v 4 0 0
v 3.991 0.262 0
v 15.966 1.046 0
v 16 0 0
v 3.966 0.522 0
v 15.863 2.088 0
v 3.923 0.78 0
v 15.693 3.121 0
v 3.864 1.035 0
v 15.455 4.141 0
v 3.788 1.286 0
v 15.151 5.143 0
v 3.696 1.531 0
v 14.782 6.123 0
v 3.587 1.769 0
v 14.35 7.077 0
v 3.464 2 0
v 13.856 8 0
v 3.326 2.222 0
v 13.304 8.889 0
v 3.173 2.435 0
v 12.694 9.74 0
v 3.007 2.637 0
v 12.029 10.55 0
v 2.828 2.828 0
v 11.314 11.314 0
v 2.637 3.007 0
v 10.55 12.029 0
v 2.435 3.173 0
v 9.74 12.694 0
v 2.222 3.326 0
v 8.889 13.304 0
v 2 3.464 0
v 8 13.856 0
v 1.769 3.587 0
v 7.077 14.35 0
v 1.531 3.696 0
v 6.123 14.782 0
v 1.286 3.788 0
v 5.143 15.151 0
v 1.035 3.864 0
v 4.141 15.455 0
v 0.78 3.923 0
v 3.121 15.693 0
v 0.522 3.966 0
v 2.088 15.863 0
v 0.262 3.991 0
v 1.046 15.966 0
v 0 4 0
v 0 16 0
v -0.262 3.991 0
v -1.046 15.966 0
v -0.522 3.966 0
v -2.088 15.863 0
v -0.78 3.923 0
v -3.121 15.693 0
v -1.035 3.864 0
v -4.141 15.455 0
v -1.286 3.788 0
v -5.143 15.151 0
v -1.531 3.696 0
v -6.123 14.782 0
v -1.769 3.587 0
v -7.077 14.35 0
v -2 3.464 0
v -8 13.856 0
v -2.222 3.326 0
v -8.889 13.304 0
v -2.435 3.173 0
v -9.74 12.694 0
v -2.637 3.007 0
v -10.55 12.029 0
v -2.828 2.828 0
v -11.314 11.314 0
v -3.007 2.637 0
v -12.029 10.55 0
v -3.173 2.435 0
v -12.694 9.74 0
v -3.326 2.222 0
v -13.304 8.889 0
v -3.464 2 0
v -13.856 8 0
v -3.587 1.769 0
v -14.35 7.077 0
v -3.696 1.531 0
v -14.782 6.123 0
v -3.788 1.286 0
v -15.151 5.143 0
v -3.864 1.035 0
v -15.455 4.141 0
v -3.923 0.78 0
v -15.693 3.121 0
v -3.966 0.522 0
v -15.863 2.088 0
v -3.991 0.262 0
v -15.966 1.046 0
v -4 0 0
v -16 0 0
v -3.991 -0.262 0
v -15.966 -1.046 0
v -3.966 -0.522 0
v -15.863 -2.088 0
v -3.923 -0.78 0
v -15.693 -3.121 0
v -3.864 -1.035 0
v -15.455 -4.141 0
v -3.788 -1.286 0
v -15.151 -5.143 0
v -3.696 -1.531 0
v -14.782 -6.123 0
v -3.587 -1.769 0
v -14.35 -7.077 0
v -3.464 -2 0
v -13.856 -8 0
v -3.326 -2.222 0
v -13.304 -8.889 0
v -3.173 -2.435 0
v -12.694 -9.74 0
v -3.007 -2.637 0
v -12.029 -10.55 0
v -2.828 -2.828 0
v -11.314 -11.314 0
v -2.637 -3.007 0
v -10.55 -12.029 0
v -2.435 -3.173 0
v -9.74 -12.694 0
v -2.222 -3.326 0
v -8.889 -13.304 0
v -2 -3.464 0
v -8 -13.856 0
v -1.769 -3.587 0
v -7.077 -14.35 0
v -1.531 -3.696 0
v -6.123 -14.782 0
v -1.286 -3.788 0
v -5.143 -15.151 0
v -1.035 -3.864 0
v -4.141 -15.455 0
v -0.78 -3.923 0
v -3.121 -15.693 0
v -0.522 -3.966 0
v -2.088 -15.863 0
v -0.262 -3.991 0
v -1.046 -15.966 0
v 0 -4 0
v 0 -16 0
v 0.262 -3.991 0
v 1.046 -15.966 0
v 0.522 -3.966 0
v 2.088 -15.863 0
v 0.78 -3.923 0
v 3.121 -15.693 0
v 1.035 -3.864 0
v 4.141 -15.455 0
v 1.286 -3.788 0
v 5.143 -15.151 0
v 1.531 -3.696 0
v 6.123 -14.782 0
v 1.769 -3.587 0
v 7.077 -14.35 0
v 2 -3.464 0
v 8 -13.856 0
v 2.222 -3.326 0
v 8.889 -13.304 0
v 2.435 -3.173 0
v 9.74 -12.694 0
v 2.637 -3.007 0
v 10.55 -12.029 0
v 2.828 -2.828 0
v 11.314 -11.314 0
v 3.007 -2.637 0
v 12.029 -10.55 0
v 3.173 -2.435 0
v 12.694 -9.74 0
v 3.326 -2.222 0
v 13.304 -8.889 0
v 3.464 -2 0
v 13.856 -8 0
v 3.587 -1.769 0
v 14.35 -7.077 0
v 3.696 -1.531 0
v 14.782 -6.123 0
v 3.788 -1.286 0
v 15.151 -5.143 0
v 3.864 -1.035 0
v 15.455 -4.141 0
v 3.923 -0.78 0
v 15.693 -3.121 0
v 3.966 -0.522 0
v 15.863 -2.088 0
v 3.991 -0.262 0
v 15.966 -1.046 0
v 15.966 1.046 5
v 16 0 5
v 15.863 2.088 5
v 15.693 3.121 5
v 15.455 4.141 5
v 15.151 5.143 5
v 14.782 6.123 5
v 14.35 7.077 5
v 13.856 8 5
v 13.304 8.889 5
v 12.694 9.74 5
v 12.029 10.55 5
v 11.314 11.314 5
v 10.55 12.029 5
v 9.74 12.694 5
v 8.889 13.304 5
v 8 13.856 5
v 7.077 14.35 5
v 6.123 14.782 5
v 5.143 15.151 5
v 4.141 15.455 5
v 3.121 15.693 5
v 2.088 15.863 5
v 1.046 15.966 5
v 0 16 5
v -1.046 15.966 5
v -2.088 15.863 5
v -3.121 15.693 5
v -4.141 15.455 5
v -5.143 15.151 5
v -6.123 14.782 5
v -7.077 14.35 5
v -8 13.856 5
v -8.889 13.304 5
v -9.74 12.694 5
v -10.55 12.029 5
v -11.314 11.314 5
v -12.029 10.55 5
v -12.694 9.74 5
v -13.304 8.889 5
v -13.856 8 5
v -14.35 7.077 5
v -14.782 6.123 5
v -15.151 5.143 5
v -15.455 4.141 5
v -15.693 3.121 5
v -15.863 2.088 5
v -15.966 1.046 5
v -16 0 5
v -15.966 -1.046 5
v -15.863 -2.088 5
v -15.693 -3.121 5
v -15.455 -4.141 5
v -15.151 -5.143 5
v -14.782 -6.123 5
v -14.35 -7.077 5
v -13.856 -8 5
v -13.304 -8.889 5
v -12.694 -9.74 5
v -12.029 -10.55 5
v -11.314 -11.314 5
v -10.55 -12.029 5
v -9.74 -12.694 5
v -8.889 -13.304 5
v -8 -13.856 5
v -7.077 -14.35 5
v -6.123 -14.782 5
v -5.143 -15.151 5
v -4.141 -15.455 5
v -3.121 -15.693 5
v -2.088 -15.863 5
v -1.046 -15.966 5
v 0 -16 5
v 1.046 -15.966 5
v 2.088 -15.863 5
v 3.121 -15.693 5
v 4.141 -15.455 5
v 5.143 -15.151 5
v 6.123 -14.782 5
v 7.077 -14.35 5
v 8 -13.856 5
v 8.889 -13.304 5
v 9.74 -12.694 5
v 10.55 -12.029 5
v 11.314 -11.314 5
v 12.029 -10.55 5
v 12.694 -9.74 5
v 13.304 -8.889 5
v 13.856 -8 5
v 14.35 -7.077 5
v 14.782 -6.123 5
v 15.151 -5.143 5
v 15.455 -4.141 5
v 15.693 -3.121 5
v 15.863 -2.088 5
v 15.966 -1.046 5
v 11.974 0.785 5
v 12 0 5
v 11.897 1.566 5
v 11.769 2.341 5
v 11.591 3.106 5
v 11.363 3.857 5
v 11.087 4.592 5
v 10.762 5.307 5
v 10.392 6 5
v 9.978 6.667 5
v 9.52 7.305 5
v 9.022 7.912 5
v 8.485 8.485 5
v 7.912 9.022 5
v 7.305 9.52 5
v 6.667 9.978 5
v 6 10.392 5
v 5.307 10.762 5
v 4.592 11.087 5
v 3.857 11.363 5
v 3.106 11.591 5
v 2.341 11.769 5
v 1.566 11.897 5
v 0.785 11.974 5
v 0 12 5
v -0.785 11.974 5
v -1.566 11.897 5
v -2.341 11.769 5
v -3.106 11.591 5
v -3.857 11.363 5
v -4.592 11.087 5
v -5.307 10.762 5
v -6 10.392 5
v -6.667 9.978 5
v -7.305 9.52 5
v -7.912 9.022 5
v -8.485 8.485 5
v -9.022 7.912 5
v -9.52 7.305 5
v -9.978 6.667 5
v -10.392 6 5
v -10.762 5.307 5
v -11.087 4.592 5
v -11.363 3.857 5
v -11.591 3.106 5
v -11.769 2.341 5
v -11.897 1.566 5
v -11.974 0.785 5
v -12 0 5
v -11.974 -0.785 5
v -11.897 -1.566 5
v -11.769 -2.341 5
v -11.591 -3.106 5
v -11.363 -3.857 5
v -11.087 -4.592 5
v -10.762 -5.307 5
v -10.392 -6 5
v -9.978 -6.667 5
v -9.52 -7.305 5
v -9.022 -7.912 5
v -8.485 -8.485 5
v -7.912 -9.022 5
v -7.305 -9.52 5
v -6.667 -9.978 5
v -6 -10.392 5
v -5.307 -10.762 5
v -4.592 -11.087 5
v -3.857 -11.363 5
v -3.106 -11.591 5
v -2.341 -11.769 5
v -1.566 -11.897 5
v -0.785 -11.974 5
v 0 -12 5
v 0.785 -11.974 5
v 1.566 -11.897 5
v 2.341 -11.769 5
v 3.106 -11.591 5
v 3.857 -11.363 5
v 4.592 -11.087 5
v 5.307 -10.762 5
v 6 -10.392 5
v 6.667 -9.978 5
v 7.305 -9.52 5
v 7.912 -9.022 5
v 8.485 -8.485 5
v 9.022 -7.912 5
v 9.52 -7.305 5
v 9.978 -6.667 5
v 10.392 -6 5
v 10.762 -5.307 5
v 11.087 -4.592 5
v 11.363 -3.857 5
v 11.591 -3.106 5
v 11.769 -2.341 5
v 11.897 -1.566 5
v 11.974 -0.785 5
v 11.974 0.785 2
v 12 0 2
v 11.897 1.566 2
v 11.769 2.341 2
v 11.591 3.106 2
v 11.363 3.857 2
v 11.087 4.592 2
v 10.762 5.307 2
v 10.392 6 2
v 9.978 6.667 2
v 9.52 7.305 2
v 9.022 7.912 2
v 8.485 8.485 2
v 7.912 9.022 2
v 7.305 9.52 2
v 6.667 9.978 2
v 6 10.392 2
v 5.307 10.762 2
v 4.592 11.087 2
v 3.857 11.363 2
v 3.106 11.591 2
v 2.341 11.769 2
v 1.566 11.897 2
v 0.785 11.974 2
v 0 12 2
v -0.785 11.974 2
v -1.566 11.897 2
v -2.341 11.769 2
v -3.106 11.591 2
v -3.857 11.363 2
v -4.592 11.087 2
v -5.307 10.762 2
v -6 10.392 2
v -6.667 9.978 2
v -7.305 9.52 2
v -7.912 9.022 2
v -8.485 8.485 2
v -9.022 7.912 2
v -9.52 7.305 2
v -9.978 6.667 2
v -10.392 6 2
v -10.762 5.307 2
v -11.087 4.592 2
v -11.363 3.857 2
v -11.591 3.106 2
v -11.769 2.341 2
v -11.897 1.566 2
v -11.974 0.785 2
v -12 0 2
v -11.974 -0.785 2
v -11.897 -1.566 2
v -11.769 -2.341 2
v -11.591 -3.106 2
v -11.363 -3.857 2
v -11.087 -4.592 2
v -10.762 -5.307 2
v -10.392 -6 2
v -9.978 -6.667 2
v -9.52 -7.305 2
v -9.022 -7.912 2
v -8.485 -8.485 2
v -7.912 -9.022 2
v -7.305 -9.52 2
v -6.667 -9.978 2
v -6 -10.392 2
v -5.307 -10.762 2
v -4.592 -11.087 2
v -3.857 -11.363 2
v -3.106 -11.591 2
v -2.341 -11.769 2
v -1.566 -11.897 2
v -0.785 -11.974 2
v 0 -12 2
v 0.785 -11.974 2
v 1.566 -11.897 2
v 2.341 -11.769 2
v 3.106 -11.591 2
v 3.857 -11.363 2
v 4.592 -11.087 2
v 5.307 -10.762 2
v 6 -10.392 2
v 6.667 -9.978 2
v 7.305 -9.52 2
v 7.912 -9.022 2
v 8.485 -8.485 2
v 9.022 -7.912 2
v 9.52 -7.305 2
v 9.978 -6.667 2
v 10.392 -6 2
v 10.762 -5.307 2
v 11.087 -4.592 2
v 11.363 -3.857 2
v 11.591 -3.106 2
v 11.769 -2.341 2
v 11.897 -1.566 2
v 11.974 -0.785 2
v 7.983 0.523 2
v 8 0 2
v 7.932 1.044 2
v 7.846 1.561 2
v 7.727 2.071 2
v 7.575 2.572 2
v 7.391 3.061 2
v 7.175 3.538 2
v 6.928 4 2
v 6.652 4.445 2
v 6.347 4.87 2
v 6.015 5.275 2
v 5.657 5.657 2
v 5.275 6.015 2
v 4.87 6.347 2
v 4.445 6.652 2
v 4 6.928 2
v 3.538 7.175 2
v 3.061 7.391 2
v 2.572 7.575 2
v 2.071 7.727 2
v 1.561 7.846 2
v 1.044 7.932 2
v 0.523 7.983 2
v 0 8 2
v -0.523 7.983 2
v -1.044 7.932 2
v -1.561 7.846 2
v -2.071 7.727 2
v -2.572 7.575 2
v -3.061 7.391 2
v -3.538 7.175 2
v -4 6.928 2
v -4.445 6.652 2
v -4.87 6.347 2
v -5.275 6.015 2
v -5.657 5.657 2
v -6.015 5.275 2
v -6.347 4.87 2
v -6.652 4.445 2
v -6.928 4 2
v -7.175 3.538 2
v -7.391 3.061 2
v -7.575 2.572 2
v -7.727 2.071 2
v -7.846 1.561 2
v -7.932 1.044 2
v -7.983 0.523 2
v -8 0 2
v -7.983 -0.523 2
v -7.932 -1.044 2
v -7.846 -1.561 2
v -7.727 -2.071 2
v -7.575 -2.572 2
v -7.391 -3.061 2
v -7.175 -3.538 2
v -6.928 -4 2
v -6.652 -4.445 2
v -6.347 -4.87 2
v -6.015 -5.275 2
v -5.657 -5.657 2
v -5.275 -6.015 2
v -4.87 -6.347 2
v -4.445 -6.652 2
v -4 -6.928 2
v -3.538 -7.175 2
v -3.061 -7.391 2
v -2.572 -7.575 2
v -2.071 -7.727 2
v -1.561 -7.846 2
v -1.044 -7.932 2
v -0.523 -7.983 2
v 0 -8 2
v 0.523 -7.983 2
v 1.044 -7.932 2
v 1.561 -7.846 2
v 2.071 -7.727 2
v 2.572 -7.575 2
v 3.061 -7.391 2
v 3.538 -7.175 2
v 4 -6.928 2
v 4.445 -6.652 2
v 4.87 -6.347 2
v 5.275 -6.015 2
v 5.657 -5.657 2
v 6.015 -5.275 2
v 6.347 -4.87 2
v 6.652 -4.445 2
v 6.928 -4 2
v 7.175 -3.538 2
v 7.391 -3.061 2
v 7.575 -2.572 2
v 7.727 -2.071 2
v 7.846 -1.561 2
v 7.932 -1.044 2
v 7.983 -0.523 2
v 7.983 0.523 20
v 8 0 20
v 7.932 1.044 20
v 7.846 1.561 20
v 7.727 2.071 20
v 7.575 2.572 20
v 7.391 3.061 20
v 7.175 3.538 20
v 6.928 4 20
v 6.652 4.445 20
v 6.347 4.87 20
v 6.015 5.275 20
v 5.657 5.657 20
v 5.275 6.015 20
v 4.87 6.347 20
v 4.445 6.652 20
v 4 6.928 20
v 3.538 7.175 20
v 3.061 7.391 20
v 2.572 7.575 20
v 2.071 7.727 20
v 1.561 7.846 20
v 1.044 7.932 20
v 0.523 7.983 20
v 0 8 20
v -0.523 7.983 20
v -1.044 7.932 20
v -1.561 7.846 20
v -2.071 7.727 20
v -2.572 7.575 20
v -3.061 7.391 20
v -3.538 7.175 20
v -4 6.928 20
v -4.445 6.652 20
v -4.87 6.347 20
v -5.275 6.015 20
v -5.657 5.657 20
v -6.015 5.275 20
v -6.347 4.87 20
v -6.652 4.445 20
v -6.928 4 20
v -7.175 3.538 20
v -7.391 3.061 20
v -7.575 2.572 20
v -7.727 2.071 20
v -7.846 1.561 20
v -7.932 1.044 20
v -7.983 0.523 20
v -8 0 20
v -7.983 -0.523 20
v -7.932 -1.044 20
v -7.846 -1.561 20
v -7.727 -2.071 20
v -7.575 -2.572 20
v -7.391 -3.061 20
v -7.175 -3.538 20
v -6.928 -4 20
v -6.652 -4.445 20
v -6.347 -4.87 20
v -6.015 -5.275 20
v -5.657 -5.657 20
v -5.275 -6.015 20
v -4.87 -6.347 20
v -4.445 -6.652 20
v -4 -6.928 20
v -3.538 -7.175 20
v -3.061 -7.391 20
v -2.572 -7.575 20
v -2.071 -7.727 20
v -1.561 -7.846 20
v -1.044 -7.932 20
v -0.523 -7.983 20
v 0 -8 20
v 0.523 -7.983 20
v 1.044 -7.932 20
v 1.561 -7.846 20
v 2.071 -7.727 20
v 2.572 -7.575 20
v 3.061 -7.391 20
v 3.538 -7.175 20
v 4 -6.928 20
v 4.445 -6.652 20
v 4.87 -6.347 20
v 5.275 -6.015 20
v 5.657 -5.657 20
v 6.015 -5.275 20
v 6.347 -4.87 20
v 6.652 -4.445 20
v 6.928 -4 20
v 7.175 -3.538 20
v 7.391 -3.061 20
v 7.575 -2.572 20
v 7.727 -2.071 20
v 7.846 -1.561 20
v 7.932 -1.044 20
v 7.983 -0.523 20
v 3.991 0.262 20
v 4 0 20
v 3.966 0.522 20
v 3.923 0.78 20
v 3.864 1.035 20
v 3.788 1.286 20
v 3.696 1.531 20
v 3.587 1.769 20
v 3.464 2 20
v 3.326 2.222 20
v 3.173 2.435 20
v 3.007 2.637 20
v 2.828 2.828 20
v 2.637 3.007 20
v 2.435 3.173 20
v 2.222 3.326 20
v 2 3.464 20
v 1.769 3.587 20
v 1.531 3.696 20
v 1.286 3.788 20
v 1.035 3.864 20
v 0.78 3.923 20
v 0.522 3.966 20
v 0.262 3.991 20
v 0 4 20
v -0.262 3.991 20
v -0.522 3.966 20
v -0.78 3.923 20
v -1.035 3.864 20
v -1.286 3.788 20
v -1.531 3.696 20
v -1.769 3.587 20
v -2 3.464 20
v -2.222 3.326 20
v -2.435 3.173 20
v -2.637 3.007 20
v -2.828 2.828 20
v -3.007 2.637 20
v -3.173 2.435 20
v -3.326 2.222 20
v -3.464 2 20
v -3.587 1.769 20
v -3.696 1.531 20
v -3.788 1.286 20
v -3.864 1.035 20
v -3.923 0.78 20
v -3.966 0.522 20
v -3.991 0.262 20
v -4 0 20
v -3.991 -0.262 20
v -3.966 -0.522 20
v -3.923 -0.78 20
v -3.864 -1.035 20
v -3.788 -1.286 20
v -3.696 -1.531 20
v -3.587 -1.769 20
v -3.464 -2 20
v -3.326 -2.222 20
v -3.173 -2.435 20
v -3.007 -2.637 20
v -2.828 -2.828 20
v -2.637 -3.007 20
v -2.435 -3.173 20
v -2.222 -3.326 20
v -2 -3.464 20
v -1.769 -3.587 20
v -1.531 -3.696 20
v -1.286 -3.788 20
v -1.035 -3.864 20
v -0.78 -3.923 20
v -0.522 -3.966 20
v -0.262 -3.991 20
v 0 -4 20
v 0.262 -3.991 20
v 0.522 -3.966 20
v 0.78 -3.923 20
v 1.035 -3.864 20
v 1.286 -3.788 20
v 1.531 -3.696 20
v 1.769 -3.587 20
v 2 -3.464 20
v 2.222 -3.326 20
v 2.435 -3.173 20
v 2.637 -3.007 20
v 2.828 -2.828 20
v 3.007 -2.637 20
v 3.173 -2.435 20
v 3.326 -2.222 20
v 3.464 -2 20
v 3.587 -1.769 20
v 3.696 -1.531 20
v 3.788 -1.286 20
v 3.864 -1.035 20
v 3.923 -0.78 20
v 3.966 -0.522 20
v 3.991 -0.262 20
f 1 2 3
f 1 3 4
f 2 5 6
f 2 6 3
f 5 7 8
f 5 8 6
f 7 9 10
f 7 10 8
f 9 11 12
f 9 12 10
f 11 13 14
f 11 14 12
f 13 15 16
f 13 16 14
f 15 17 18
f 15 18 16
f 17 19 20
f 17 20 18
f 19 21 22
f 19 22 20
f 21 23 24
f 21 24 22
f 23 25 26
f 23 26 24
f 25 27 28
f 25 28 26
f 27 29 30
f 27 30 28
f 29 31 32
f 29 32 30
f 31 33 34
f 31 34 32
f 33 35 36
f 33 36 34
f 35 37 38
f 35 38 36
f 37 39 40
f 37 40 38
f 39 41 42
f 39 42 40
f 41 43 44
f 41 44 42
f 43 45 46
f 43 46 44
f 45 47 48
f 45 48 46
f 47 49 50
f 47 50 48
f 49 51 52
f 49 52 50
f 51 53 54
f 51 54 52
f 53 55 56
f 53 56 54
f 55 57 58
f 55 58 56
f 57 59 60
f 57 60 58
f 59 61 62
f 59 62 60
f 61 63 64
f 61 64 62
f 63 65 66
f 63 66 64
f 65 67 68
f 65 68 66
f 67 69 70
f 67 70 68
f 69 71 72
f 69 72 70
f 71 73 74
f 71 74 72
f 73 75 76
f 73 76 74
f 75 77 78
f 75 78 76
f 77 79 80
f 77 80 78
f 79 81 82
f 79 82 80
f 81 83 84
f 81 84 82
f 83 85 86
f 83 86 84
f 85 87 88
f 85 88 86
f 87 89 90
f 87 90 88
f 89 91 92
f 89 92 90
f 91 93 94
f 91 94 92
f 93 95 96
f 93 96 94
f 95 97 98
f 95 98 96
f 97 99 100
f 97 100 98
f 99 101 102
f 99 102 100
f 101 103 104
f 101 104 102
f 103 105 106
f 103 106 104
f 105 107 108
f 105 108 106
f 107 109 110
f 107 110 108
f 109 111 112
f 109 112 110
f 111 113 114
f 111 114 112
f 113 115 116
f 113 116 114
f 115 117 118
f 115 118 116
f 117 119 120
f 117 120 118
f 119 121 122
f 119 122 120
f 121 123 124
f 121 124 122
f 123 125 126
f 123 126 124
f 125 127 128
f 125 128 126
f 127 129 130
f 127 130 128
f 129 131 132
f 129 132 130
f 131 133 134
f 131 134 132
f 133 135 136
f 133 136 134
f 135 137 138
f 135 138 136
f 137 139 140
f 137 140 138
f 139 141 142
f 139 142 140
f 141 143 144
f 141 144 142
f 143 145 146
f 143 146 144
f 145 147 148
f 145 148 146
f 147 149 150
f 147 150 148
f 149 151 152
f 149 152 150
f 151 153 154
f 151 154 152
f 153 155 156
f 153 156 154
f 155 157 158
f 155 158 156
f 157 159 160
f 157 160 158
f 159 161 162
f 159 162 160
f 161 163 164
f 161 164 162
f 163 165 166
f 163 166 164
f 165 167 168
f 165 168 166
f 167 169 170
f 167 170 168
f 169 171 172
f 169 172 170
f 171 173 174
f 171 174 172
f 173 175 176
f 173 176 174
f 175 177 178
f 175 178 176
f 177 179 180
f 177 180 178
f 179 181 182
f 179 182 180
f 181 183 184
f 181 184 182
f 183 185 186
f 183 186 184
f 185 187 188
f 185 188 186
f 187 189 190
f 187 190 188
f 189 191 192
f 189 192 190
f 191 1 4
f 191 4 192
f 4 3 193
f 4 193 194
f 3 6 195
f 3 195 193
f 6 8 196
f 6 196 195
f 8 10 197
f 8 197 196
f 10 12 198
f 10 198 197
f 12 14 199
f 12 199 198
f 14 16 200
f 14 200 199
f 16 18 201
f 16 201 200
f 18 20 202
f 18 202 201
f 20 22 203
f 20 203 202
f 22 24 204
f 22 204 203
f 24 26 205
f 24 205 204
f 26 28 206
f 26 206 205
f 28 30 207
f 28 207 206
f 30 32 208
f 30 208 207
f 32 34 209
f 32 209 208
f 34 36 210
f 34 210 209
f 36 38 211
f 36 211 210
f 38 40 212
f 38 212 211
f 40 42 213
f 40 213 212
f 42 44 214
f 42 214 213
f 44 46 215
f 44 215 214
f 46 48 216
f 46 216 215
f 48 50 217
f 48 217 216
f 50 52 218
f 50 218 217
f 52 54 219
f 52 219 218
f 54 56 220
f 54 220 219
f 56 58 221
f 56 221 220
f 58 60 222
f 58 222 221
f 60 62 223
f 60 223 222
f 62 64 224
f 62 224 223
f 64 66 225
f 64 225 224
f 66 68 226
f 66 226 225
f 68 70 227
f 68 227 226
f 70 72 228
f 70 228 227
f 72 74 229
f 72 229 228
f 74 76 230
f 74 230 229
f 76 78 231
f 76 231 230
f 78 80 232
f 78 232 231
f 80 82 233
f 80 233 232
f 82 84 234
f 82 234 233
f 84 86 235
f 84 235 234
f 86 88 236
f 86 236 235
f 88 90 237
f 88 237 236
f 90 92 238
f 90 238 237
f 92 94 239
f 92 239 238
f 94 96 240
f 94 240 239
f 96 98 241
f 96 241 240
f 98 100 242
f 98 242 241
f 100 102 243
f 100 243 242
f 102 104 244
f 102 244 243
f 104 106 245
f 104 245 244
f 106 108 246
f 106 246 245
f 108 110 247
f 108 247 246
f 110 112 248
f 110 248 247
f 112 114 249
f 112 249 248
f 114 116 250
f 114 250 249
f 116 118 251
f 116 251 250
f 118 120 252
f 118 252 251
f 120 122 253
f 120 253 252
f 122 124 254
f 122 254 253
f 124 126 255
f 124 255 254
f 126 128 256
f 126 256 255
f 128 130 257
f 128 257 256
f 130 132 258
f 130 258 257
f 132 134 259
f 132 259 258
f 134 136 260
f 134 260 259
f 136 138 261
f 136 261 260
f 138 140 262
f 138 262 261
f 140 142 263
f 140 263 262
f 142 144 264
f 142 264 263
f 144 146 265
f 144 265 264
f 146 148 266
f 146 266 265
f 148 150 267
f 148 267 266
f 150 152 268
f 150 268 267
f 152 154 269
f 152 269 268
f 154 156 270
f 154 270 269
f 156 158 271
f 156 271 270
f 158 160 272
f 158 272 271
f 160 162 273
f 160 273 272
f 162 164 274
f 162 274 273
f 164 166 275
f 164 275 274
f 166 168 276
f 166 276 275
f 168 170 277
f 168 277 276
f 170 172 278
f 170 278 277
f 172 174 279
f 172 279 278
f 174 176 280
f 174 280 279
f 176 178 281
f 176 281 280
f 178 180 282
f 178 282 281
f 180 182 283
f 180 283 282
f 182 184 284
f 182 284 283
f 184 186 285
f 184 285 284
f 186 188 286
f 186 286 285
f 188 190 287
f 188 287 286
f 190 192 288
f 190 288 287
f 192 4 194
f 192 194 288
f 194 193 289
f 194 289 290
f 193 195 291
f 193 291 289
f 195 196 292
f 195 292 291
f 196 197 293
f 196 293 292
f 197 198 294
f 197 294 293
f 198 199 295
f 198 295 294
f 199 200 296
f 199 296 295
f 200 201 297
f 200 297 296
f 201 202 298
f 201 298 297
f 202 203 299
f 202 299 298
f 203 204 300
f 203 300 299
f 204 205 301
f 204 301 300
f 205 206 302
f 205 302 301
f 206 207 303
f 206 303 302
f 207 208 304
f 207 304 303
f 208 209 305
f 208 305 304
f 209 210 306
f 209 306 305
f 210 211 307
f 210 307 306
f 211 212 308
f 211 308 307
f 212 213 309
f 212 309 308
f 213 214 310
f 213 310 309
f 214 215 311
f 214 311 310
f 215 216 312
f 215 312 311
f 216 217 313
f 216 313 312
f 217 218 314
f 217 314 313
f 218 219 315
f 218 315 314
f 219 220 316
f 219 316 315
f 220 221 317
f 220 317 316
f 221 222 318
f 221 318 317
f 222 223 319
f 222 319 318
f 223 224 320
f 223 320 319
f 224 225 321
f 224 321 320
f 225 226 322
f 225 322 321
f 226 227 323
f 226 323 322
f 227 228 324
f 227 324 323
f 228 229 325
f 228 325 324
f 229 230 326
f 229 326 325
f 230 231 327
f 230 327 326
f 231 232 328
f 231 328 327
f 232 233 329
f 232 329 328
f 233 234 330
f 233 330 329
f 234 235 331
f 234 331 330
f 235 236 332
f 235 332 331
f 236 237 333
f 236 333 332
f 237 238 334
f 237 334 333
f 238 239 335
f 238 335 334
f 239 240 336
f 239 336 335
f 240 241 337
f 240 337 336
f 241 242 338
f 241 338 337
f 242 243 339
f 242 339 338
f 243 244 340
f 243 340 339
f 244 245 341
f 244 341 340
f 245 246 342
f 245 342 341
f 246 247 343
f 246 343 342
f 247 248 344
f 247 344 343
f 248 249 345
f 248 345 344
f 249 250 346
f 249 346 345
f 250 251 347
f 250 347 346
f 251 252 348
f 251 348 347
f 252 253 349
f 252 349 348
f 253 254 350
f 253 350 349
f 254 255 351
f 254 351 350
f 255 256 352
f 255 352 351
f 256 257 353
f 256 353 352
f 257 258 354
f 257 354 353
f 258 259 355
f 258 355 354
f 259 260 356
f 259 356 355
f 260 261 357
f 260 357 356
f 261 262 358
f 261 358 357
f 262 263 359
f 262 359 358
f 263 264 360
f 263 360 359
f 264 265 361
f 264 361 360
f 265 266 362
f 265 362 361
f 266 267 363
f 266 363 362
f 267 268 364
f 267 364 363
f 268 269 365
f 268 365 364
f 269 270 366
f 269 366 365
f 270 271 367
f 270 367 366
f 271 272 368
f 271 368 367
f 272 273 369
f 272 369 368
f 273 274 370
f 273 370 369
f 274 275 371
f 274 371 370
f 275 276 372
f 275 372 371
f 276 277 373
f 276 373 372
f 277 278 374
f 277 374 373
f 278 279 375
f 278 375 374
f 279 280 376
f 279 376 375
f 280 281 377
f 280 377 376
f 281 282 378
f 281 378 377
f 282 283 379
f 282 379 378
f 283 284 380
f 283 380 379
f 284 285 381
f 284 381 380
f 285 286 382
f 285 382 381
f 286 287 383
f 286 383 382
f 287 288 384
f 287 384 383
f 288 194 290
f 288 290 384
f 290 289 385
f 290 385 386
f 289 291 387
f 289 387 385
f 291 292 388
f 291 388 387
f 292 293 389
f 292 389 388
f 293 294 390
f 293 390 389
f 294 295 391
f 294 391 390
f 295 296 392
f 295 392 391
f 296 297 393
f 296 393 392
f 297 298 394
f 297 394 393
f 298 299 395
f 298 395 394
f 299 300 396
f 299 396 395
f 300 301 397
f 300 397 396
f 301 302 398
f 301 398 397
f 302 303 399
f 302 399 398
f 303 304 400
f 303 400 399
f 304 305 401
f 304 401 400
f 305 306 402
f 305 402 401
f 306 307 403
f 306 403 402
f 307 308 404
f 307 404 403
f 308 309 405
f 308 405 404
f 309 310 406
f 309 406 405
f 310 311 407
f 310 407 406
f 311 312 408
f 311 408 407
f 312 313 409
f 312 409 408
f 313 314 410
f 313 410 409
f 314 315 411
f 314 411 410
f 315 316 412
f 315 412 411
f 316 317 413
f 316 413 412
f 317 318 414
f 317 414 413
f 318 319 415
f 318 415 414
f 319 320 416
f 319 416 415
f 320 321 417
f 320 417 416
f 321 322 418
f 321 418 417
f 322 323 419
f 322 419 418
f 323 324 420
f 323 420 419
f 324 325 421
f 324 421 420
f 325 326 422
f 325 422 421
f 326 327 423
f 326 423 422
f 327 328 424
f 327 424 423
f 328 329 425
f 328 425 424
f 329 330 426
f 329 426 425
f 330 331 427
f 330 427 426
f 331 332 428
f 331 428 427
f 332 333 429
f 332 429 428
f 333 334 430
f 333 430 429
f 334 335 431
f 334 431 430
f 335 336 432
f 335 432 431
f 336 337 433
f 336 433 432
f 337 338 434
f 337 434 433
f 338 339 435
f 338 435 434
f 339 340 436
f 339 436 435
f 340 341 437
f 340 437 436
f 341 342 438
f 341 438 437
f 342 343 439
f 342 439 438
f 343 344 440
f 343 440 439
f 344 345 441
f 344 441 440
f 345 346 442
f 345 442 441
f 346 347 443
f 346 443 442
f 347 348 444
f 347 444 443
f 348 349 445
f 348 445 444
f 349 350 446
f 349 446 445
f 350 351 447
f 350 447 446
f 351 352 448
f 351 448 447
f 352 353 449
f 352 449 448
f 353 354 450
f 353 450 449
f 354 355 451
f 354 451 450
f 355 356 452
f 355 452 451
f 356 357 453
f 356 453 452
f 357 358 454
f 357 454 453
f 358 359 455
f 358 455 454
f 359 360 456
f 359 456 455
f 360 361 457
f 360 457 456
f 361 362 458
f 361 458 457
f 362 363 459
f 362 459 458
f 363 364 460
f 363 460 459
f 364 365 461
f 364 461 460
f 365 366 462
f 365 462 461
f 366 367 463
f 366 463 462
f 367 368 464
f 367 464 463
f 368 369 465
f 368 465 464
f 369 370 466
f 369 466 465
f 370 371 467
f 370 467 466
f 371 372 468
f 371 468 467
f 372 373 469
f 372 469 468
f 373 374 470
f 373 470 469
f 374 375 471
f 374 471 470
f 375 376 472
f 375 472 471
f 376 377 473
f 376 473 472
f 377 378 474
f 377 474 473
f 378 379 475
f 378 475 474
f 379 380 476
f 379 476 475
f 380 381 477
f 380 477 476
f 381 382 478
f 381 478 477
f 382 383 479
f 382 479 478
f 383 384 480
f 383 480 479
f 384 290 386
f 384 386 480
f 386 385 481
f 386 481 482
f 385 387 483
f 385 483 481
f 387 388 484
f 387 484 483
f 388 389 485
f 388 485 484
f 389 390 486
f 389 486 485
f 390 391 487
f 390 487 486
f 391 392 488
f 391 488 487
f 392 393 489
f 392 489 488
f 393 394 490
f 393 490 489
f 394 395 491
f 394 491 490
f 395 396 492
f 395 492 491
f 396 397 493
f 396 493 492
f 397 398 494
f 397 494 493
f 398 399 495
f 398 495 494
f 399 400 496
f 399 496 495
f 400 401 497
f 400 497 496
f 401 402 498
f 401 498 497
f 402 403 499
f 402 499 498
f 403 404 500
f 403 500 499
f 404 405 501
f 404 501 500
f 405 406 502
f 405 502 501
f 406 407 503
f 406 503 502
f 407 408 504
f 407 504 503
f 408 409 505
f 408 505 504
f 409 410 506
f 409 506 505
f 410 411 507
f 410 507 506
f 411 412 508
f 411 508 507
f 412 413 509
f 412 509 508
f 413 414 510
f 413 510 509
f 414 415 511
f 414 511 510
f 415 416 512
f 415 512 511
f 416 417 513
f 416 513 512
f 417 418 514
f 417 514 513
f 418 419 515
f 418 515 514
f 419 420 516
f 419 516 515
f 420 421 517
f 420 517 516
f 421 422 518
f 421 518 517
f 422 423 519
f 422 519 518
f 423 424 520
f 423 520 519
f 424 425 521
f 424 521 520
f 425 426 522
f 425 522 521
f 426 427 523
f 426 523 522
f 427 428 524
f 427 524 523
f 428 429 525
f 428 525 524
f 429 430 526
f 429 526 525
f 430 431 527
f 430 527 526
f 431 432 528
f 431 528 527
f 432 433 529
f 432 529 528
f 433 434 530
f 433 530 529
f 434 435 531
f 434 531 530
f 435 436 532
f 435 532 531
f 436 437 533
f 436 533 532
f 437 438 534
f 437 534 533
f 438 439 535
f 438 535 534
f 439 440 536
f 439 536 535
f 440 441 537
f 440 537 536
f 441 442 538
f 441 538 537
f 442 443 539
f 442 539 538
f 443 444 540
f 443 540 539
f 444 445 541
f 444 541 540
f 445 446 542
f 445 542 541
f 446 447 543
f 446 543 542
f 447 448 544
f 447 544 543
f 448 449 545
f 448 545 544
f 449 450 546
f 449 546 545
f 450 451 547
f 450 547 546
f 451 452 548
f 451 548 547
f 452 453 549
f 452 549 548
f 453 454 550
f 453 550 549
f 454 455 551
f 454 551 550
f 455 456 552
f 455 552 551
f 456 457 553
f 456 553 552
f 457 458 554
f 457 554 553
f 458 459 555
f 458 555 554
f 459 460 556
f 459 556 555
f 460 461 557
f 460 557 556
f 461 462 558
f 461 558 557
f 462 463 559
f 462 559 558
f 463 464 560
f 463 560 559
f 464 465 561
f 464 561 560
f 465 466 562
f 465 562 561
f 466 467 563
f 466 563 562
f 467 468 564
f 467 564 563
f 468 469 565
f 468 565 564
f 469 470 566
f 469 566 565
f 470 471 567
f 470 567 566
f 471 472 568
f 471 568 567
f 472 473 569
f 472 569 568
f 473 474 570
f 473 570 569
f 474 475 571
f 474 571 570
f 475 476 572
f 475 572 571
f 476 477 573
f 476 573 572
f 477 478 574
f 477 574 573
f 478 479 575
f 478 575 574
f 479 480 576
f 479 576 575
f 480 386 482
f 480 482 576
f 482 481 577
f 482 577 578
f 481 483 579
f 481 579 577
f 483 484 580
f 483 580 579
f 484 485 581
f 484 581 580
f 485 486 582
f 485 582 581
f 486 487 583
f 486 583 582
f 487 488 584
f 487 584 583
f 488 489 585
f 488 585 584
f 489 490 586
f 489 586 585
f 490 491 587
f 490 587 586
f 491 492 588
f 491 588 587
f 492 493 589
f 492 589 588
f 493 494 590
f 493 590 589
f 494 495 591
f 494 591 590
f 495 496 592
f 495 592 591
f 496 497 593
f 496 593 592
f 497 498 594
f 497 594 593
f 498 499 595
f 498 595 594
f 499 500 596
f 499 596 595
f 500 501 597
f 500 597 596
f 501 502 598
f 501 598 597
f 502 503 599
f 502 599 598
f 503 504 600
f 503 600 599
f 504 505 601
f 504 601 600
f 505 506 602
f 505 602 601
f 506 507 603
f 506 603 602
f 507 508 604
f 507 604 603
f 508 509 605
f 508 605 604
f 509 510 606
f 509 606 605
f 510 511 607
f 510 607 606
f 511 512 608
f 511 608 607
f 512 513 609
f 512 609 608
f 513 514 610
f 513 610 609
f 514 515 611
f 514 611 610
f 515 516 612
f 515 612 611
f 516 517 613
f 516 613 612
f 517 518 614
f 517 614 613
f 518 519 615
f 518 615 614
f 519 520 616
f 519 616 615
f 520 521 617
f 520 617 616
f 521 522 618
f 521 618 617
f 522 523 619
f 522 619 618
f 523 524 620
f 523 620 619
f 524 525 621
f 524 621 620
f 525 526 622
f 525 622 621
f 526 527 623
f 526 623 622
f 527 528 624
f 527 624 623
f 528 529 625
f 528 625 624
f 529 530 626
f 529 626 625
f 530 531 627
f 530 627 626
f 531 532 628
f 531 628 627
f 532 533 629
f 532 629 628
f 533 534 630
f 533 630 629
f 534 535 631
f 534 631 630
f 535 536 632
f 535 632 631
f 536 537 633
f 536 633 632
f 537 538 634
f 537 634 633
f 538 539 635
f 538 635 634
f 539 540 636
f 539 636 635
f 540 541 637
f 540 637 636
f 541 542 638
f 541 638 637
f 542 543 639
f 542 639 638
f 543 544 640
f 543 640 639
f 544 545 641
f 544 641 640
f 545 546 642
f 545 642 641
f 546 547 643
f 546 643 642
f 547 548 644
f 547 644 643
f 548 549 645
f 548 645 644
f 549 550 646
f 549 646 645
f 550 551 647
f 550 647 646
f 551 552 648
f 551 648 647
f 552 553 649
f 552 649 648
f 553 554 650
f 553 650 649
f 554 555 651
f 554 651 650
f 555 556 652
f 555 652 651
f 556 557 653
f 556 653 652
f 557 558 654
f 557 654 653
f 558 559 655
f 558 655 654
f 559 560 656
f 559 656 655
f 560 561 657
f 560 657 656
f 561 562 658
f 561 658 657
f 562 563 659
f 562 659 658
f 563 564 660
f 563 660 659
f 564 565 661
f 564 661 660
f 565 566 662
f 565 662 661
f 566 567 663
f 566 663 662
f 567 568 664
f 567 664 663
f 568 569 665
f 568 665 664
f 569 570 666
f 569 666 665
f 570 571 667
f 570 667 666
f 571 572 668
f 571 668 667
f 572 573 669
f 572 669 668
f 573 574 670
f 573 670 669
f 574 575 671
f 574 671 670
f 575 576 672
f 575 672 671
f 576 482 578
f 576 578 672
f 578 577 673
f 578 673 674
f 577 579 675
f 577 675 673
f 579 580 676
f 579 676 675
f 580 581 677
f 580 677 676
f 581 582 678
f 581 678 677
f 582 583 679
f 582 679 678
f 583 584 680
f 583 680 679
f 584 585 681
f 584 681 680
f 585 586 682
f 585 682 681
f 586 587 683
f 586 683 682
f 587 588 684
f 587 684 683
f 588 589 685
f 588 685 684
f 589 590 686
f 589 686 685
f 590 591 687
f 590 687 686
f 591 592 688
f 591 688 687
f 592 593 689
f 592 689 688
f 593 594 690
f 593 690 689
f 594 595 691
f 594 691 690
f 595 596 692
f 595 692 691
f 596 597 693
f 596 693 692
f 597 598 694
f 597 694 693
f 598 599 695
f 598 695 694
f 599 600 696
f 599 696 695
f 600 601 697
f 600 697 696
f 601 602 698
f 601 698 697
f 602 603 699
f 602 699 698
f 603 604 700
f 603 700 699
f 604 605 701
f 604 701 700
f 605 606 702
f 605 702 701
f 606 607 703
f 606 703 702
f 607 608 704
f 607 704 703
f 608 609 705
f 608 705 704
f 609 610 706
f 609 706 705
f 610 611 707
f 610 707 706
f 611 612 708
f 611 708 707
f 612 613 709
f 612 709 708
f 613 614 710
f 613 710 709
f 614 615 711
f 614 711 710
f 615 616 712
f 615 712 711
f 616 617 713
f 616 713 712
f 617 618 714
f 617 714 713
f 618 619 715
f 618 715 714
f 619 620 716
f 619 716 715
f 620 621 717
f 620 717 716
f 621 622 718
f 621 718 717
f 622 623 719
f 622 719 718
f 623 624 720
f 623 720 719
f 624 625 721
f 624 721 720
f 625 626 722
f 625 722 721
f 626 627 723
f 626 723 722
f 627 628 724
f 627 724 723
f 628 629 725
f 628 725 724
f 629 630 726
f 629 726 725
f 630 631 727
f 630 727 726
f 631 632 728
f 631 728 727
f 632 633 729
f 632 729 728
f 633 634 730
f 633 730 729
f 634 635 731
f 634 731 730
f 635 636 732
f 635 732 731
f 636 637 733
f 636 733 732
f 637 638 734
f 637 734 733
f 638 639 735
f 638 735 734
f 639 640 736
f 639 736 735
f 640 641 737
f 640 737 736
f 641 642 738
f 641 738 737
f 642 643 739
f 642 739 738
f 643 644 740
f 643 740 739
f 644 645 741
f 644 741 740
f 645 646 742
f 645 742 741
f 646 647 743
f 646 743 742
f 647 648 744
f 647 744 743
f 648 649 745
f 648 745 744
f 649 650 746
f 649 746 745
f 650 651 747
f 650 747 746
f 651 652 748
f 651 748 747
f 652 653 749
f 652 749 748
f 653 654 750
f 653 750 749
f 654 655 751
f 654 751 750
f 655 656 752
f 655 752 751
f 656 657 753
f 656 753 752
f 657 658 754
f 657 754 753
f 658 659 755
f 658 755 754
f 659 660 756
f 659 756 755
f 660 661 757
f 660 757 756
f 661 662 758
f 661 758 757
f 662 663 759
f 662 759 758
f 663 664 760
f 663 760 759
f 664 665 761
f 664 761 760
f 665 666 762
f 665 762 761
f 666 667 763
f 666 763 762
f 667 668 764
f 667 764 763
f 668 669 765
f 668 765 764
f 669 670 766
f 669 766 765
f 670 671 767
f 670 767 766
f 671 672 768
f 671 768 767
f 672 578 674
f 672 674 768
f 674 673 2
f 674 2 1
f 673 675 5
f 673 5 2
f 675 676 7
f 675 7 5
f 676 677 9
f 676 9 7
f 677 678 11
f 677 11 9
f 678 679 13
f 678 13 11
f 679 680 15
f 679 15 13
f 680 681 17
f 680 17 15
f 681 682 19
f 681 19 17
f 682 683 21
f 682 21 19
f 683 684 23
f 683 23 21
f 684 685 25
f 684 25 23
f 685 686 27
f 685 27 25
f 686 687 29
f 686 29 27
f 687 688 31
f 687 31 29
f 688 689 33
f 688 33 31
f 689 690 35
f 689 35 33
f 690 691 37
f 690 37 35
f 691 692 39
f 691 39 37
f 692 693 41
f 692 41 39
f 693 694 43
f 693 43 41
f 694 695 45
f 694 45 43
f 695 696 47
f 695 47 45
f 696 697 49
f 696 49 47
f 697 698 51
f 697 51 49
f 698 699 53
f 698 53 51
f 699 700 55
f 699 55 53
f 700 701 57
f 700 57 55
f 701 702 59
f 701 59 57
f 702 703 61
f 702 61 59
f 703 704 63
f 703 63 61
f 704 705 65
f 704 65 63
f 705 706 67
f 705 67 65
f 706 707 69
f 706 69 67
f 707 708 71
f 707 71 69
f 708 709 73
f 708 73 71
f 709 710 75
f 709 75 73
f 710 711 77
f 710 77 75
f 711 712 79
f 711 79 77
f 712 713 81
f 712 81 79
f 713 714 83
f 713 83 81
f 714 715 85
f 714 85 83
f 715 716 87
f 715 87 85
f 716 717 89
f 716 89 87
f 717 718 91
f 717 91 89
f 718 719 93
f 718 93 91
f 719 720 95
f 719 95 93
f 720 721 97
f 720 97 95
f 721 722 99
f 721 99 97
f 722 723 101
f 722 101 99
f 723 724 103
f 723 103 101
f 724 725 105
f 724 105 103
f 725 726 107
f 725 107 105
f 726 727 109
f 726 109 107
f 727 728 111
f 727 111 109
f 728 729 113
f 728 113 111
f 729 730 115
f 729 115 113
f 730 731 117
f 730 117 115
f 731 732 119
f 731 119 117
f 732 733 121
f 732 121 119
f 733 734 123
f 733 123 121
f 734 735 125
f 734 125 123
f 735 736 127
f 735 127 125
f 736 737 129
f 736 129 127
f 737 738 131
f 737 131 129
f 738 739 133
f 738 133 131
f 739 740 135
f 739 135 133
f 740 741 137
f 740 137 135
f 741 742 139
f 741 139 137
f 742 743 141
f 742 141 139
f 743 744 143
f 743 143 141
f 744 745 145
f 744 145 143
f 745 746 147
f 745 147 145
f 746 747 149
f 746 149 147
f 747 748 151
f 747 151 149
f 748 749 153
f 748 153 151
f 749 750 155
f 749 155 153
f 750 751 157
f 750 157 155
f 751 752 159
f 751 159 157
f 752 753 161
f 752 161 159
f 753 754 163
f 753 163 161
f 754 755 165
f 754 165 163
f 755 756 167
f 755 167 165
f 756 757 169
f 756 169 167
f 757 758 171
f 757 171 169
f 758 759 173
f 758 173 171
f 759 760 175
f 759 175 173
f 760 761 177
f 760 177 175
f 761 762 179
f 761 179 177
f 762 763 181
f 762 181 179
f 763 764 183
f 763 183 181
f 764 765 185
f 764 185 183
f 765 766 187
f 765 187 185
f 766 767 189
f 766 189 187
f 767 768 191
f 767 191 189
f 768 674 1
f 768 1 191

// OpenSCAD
// Original MechIntel educational model. CC0-1.0. Units: mm.
// Not a standardized or load-rated component.
$fn=96;
// Section points: [radius, height], mm. Edit to change the profile.
section=[[4, 0], [16, 0], [16, 5], [12, 5], [12, 2], [8, 2], [8, 20], [4, 20]];
rotate_extrude($fn=96) polygon(points=section);
